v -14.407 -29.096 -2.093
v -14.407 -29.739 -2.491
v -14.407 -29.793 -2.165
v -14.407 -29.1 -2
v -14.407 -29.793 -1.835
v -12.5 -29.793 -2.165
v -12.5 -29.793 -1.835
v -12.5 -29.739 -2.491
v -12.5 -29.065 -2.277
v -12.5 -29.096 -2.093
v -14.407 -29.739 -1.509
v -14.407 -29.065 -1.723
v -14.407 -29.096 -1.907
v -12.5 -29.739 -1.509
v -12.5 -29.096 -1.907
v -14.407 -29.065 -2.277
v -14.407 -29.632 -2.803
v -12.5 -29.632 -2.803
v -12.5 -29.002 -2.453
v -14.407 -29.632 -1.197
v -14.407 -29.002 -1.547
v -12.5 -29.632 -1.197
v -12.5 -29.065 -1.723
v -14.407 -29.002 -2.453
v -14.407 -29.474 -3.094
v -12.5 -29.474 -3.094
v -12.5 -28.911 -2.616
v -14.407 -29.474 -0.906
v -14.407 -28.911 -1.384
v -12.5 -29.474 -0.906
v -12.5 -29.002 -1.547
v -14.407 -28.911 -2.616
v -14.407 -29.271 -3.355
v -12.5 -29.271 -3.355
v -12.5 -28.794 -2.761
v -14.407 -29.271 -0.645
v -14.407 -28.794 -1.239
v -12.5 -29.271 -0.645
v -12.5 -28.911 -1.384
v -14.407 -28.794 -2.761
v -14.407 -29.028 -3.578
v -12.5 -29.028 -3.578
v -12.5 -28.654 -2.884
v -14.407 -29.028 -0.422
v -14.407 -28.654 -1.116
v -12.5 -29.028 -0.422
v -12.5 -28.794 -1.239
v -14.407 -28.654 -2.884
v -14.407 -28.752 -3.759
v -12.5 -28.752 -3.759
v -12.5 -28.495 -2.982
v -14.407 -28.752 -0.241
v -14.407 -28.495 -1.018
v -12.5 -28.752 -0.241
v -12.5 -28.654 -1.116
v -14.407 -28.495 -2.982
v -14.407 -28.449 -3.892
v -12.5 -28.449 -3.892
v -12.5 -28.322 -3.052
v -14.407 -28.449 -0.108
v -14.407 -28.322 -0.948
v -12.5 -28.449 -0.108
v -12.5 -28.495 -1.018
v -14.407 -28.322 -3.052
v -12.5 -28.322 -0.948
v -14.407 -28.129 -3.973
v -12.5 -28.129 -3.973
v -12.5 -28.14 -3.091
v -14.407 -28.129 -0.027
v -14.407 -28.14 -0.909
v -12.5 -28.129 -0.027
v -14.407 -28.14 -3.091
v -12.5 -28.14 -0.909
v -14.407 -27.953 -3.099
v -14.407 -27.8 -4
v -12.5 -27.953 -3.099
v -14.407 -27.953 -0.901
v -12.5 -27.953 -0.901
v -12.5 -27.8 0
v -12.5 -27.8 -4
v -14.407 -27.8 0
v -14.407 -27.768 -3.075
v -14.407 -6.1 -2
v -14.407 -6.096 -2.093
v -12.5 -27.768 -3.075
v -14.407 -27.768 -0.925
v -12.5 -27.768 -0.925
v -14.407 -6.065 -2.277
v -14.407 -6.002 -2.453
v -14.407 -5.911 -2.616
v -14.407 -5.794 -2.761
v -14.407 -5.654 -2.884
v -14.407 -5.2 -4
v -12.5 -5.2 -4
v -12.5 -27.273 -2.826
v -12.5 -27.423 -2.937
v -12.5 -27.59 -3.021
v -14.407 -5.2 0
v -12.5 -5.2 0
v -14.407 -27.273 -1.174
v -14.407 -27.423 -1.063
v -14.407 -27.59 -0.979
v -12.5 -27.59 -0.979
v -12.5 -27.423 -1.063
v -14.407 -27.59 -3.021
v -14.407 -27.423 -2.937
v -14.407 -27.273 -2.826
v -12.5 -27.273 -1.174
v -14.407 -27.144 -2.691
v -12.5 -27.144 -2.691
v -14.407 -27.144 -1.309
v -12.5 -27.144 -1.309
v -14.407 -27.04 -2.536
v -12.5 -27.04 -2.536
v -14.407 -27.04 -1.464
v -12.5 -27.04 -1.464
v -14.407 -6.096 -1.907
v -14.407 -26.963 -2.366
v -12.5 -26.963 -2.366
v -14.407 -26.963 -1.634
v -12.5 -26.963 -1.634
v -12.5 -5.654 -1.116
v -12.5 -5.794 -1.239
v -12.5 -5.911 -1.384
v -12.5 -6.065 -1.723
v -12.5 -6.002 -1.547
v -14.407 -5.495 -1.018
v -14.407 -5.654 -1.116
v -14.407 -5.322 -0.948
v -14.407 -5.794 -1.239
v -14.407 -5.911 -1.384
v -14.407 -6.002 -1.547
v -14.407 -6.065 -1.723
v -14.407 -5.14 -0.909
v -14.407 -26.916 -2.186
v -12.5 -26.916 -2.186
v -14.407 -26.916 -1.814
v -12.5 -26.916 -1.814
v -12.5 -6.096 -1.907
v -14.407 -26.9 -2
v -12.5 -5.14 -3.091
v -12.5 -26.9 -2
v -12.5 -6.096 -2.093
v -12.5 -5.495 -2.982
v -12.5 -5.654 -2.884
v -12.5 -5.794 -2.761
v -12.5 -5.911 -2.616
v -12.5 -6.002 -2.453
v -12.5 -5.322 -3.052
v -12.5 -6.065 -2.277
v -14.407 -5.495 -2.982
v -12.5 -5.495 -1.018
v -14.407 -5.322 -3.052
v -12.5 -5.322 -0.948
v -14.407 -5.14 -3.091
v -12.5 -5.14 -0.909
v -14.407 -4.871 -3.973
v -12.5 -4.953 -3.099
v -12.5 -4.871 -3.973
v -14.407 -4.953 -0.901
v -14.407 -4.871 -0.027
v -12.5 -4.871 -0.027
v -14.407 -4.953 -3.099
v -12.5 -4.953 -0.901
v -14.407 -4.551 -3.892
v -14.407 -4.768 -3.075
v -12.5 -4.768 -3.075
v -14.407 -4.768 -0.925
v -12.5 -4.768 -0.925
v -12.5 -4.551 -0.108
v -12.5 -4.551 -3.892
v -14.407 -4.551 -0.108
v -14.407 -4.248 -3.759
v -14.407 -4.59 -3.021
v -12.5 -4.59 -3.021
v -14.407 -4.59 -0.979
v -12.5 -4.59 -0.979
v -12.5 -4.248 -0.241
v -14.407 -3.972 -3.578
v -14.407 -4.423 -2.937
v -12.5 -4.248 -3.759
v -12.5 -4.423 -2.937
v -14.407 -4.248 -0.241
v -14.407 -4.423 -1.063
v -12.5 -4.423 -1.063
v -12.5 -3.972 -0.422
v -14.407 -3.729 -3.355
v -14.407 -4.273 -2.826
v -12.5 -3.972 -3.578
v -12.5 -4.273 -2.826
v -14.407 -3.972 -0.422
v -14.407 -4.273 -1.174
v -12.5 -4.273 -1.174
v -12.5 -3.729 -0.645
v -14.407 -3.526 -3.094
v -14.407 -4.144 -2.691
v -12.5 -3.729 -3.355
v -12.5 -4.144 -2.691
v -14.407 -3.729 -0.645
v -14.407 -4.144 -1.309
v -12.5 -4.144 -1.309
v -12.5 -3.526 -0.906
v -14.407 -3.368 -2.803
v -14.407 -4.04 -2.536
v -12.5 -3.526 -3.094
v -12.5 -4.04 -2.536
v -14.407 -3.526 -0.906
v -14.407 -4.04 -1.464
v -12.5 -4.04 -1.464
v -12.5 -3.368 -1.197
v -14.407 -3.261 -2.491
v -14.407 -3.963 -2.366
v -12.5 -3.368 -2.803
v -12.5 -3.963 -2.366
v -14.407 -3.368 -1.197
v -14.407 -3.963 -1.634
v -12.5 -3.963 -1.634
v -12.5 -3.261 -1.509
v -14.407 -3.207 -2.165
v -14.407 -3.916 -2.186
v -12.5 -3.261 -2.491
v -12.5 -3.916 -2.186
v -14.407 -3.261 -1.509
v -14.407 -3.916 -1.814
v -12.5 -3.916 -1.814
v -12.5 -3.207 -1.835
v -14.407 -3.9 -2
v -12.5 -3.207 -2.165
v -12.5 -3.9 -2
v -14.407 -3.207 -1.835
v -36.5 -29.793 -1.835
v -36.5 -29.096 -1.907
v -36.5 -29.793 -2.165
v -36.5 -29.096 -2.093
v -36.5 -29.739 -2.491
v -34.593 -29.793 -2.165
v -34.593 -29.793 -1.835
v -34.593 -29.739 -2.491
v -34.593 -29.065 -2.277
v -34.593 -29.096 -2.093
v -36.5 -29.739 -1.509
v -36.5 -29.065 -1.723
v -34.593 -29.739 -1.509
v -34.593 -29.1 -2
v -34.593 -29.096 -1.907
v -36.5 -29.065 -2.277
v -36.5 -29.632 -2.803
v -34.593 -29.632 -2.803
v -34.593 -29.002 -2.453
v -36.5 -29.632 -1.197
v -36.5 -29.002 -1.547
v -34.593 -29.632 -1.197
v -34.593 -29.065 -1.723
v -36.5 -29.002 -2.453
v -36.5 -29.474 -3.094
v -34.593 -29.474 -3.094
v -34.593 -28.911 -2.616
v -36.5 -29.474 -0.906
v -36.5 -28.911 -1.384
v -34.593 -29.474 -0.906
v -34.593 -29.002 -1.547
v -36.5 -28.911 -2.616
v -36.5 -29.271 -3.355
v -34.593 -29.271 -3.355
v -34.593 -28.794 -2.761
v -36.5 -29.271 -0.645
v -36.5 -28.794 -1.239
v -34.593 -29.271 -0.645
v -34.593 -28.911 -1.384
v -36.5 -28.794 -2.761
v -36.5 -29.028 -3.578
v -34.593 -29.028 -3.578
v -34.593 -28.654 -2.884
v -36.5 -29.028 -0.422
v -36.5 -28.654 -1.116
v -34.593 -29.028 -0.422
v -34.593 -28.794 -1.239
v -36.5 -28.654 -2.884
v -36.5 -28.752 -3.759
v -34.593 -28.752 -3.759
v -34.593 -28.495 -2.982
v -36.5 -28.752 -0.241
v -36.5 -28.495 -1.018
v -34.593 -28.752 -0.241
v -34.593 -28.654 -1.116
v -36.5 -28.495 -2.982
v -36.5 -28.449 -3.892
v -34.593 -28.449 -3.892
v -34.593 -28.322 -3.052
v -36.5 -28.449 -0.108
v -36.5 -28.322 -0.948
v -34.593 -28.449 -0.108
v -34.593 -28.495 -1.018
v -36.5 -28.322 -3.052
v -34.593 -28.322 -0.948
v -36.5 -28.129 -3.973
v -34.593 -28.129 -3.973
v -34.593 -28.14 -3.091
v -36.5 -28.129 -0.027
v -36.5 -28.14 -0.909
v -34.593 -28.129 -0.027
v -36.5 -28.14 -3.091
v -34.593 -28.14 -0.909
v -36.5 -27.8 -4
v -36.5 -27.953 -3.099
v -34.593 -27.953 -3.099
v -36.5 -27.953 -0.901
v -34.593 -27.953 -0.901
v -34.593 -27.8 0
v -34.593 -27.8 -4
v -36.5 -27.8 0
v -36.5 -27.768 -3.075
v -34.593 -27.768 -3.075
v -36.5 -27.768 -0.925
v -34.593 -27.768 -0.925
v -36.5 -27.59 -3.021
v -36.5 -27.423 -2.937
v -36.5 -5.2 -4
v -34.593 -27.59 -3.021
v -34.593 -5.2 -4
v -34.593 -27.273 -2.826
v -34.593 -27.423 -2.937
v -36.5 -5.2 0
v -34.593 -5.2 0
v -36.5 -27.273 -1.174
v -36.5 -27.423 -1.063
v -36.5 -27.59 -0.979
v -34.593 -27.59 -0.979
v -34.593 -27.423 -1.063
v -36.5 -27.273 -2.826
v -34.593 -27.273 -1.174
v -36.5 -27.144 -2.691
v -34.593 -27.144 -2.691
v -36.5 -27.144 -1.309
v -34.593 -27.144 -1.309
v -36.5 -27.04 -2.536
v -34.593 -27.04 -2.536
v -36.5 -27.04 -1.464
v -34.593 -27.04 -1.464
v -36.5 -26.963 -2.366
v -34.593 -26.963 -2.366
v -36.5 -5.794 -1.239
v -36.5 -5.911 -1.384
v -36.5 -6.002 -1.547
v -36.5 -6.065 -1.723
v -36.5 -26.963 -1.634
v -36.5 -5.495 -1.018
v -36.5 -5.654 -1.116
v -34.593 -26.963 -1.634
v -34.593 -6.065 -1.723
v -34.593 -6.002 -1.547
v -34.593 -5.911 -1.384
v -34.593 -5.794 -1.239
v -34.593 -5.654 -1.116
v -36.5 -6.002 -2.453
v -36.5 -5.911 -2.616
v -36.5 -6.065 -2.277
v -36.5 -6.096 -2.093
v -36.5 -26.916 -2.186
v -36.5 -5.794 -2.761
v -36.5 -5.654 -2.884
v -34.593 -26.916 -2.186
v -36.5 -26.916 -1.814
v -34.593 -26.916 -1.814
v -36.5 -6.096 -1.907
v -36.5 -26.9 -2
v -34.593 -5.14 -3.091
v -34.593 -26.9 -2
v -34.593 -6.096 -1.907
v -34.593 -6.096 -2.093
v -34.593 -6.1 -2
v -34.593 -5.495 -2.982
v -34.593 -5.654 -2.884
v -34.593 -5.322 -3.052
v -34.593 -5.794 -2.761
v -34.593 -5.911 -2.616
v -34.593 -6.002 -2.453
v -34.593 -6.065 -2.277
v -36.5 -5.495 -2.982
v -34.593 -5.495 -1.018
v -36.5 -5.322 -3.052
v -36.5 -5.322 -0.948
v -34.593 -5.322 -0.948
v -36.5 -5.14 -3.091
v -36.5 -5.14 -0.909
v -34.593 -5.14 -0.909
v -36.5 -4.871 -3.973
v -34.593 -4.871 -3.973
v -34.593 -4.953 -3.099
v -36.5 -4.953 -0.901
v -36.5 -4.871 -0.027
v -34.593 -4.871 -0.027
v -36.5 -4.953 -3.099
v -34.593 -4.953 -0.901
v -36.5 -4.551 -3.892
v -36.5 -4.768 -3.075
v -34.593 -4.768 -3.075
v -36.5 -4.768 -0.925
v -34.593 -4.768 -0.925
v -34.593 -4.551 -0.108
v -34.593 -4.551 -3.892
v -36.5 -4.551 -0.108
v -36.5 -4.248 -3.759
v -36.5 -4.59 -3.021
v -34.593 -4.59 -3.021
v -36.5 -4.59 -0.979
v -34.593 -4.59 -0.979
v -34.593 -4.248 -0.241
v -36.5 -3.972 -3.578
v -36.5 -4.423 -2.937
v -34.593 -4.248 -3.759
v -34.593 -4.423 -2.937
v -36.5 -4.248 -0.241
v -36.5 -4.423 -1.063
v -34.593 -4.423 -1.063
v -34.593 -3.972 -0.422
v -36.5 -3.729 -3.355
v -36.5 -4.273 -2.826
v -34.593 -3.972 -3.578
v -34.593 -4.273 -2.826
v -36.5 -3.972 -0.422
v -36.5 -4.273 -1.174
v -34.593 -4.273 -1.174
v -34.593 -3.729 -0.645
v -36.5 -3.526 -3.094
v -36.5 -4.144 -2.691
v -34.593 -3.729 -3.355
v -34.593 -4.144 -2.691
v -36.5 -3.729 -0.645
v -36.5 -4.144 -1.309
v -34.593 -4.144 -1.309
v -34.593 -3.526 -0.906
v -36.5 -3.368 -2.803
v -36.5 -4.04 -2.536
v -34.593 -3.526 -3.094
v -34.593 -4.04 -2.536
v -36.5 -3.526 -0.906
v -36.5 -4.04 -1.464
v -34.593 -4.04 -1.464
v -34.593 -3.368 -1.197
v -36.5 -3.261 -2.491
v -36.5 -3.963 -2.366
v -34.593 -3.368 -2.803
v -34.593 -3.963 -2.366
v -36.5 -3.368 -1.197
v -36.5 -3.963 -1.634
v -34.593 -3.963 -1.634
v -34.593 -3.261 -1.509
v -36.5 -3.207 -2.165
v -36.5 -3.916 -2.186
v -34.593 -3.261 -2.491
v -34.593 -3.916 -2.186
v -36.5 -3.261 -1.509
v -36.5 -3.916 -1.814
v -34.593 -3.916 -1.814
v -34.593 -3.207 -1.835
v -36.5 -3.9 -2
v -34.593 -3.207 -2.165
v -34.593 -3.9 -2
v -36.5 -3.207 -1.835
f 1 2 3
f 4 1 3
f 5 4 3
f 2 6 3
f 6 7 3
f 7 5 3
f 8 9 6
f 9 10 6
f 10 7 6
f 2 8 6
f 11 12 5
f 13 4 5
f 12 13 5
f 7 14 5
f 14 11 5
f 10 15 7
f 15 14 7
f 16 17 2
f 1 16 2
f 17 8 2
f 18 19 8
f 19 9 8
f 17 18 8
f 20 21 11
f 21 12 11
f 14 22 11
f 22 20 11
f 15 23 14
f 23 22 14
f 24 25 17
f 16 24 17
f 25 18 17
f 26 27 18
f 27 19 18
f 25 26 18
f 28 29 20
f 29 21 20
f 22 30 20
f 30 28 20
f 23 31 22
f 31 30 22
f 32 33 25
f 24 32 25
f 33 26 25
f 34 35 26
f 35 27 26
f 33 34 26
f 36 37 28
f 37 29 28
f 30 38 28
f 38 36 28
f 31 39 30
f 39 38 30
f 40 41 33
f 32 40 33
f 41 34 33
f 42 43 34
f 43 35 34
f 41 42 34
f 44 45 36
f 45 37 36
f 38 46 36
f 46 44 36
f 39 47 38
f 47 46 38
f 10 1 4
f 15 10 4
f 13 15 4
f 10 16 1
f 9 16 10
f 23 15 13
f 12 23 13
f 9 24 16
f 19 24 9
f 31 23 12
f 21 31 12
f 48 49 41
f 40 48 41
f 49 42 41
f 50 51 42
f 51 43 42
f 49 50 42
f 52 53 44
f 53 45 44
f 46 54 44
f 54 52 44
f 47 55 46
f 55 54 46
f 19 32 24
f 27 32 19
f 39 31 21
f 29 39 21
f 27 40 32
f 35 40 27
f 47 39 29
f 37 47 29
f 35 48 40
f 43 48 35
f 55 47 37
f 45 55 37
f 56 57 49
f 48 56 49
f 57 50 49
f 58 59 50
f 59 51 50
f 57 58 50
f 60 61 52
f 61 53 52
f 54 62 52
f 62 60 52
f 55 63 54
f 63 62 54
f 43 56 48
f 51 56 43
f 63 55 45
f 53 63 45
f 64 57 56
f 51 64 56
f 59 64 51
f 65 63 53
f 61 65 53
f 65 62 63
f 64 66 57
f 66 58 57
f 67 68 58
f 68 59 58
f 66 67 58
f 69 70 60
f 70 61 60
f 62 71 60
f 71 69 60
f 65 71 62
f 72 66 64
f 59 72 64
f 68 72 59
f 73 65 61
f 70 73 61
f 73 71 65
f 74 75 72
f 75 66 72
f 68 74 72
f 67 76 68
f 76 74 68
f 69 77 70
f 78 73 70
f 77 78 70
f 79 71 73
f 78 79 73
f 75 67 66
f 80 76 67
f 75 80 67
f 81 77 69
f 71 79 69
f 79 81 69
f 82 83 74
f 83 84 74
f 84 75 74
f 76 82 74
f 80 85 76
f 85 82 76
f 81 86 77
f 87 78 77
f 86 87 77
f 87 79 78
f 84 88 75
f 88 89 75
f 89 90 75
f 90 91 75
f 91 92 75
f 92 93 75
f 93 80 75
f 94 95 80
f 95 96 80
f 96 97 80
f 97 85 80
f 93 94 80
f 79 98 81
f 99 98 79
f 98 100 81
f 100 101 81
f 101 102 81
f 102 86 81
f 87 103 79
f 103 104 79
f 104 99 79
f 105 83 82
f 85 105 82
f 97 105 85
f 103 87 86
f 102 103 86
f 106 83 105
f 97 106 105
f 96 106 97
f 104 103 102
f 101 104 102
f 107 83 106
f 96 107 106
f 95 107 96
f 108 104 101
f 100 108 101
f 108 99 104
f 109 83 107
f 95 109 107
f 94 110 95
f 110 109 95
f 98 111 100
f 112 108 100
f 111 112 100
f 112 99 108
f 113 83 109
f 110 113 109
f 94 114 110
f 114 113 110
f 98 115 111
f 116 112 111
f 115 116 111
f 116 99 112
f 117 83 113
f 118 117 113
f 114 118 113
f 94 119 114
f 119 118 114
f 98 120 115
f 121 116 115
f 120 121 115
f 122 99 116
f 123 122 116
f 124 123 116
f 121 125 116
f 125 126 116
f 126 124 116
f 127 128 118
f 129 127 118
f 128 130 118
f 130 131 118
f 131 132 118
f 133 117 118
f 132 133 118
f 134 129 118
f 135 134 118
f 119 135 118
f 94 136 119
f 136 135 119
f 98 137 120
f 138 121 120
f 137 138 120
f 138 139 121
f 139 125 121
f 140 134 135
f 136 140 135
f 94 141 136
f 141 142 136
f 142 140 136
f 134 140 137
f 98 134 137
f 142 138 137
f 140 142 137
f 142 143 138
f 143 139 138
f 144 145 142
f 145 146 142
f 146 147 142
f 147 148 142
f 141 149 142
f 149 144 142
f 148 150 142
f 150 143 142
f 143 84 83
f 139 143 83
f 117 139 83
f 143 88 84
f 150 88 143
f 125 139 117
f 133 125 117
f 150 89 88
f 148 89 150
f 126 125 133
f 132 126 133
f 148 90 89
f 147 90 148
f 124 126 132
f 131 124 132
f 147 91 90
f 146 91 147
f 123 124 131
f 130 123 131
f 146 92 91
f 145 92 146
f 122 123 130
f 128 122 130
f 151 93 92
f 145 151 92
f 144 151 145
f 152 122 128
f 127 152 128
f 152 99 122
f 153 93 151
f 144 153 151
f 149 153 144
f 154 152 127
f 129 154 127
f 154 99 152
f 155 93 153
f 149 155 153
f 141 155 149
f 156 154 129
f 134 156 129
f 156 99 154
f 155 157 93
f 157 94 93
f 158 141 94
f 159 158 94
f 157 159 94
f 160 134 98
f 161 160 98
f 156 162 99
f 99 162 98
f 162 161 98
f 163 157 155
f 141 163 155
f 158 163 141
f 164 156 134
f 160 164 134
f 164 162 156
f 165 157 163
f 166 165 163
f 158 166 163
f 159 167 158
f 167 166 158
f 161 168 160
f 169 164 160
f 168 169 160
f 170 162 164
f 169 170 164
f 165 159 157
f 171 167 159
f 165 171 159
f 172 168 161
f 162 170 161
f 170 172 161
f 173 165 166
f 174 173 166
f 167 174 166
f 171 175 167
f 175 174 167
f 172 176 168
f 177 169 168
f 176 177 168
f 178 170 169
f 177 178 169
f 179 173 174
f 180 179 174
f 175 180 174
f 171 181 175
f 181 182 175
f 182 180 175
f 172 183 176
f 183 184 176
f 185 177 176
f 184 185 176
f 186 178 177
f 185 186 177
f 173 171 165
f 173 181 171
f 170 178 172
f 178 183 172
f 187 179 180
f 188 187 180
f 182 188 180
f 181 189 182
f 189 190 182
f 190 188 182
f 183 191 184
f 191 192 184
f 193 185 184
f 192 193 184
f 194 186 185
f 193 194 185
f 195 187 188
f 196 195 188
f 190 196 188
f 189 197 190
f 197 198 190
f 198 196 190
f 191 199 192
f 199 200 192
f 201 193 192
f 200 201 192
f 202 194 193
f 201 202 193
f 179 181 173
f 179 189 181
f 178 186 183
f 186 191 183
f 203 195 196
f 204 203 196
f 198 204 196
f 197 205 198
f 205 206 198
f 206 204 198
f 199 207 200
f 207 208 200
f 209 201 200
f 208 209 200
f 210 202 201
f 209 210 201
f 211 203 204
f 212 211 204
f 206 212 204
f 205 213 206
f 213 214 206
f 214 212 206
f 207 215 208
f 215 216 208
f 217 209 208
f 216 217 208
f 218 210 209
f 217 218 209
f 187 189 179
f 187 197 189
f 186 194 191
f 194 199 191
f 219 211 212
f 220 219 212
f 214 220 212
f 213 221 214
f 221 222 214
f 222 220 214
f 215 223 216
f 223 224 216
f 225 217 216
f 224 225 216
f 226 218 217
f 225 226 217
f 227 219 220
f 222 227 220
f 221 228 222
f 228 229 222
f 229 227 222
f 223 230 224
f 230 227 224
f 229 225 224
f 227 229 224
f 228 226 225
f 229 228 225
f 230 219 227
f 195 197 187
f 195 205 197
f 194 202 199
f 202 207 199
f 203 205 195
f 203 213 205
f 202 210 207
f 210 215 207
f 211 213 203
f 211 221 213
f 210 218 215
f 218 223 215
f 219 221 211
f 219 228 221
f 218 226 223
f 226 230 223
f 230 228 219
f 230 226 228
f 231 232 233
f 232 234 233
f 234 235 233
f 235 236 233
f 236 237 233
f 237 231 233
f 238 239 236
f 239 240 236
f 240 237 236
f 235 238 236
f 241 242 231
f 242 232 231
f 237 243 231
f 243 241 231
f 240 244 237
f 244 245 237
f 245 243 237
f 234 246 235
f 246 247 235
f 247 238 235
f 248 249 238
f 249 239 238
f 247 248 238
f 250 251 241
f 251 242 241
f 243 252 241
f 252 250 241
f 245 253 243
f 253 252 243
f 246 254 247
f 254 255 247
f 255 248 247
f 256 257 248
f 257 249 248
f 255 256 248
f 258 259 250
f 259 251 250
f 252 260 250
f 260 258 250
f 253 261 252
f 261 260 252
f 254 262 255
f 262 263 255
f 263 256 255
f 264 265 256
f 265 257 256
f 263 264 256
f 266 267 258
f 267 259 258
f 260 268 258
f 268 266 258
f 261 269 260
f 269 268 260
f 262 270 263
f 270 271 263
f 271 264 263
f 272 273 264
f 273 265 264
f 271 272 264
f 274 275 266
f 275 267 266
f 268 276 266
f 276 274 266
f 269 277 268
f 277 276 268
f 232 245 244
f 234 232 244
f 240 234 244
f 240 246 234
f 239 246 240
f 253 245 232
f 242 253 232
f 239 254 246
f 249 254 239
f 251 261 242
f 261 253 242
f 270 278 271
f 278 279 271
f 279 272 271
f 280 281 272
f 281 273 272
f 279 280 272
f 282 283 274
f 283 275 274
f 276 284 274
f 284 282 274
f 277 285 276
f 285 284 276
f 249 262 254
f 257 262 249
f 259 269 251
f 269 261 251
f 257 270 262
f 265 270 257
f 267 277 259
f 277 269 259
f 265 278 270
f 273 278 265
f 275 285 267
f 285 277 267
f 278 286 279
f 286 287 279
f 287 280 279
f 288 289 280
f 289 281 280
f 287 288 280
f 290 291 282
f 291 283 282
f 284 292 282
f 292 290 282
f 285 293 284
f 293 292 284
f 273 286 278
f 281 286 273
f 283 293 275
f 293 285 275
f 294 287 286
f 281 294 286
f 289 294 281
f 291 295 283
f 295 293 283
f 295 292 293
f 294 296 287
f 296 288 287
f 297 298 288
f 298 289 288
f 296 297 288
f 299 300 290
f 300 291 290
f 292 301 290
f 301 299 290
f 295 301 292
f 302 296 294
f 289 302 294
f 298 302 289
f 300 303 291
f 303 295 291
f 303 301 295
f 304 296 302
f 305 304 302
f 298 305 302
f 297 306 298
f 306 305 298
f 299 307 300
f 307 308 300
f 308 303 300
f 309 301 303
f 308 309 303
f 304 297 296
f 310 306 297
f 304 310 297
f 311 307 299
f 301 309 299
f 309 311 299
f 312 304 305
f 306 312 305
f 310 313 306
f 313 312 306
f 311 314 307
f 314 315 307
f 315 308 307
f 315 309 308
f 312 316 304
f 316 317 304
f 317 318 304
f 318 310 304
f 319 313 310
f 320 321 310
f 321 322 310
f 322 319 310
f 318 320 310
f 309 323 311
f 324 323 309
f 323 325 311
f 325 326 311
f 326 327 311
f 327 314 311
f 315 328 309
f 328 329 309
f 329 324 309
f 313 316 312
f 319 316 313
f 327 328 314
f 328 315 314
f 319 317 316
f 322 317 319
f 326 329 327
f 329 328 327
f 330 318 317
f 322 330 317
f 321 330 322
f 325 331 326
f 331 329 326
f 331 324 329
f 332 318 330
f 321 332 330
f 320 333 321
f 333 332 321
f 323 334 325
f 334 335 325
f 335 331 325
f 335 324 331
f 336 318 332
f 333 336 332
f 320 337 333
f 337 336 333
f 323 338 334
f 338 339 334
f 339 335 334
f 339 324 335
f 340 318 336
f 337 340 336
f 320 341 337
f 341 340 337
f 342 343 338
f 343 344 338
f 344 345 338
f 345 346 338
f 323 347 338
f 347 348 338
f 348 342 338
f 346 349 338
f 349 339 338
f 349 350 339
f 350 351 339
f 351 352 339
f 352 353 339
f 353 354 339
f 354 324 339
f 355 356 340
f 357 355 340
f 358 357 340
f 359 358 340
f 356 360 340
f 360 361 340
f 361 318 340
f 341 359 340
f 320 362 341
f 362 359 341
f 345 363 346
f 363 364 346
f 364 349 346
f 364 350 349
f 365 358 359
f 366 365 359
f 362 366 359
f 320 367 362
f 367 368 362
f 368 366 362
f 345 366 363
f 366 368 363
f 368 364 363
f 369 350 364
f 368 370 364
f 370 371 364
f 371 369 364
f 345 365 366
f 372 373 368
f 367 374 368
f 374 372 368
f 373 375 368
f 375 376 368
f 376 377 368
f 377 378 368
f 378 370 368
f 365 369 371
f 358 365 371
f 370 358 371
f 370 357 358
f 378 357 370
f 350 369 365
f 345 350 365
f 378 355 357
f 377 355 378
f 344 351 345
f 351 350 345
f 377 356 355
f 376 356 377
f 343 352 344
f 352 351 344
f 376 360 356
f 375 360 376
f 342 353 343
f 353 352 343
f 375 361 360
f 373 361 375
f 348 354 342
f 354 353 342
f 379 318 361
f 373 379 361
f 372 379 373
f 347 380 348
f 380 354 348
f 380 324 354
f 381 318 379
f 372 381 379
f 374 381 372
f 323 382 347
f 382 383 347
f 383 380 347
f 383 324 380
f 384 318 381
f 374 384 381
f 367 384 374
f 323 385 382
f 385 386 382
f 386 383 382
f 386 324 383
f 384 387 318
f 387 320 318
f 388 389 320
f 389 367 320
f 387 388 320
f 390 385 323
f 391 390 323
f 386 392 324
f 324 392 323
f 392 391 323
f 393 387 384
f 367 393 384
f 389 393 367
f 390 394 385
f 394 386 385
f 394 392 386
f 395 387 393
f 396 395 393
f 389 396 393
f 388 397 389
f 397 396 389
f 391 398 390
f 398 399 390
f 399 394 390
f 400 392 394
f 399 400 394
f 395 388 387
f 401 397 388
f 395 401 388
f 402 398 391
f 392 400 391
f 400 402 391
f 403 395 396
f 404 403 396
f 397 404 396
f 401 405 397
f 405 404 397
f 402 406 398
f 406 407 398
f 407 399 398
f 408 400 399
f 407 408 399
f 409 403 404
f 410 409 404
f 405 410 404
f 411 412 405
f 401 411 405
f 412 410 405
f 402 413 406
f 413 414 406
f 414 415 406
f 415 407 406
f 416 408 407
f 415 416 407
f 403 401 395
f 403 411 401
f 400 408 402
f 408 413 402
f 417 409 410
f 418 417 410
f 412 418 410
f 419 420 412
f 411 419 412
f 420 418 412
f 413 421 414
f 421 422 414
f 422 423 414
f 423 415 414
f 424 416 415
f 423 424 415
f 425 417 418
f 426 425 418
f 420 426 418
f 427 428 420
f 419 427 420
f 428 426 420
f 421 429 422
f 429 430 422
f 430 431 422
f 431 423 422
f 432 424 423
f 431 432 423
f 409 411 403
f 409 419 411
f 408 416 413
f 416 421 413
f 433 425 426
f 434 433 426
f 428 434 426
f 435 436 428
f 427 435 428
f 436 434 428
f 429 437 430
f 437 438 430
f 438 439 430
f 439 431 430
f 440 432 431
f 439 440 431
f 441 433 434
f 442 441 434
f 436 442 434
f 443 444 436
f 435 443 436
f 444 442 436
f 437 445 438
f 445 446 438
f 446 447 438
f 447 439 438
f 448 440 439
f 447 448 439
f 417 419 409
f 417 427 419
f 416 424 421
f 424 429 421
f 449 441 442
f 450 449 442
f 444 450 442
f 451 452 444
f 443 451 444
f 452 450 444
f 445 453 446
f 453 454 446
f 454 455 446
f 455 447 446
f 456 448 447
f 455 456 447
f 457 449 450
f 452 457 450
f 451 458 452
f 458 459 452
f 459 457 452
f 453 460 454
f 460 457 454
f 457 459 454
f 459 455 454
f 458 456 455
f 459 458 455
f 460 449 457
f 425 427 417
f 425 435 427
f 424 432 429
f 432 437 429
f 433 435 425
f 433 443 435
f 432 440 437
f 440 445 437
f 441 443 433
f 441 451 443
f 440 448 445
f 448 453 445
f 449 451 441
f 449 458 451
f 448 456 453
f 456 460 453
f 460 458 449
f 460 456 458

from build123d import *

# Parameters (mm, degrees)
SKETCH_1_W          = 1.906620372
SKETCH_1_H          = 27
EXTRUDE_1_DEPTH     = 4
EXTRUDE_1_2_DEPTH   = 4
SKETCH_2_R          = 1.1
CUT_EXTRUDE_6_DEPTH = 25


with BuildPart() as part:
    # 草图1 → 凸台-拉伸1 (new body)
    with BuildSketch(Plane.XY):
        with Locations((-13.453310186, -16.5)):
            Rectangle(SKETCH_1_W, SKETCH_1_H)
    extrude(amount=-EXTRUDE_1_DEPTH)


with BuildPart() as body_2:
    # 草图1 → Extrude 1 2 (new body)
    with BuildSketch(Plane.XY):
        with Locations((-35.546689814, -16.5)):
            Rectangle(SKETCH_1_W, SKETCH_1_H)
    extrude(amount=-EXTRUDE_1_2_DEPTH)


with BuildPart() as cut_extrude_6_tool:
    # 草图2 → 切除-拉伸6 (new body, through all)
    with BuildSketch(Plane(origin=(-12.5, 0, 0), x_dir=(0, 0, -1), z_dir=(1, 0, 0))):
        with BuildLine():
            Line((4, -3), (0, -3))
            Line((0, -3), (0, -5.2))
            ThreePointArc((0, -5.2), (2, -3.2), (4, -5.2))
            Line((4, -5.2), (4, -3))
        make_face()
        with BuildLine():
            ThreePointArc((4, -27.8), (1.999999998, -29.8), (0, -27.799999995))
            Line((0, -27.799999995), (0, -30))
            Line((0, -30), (4, -30))
            Line((4, -30), (4, -27.8))
        make_face()
        with Locations((2, -28)):
            Circle(SKETCH_2_R)
        with Locations((2, -5)):
            Circle(SKETCH_2_R)
    extrude(amount=-CUT_EXTRUDE_6_DEPTH)


with BuildPart() as part_1:
    add(part.part)

    # 切除-拉伸6: cut by cut_extrude_6_tool
    add(cut_extrude_6_tool.part, mode=Mode.SUBTRACT)


with BuildPart() as body_2_1:
    add(body_2.part)

    # 切除-拉伸6: cut by cut_extrude_6_tool
    add(cut_extrude_6_tool.part, mode=Mode.SUBTRACT)


solid = Compound([part_1.part, body_2_1.part])
